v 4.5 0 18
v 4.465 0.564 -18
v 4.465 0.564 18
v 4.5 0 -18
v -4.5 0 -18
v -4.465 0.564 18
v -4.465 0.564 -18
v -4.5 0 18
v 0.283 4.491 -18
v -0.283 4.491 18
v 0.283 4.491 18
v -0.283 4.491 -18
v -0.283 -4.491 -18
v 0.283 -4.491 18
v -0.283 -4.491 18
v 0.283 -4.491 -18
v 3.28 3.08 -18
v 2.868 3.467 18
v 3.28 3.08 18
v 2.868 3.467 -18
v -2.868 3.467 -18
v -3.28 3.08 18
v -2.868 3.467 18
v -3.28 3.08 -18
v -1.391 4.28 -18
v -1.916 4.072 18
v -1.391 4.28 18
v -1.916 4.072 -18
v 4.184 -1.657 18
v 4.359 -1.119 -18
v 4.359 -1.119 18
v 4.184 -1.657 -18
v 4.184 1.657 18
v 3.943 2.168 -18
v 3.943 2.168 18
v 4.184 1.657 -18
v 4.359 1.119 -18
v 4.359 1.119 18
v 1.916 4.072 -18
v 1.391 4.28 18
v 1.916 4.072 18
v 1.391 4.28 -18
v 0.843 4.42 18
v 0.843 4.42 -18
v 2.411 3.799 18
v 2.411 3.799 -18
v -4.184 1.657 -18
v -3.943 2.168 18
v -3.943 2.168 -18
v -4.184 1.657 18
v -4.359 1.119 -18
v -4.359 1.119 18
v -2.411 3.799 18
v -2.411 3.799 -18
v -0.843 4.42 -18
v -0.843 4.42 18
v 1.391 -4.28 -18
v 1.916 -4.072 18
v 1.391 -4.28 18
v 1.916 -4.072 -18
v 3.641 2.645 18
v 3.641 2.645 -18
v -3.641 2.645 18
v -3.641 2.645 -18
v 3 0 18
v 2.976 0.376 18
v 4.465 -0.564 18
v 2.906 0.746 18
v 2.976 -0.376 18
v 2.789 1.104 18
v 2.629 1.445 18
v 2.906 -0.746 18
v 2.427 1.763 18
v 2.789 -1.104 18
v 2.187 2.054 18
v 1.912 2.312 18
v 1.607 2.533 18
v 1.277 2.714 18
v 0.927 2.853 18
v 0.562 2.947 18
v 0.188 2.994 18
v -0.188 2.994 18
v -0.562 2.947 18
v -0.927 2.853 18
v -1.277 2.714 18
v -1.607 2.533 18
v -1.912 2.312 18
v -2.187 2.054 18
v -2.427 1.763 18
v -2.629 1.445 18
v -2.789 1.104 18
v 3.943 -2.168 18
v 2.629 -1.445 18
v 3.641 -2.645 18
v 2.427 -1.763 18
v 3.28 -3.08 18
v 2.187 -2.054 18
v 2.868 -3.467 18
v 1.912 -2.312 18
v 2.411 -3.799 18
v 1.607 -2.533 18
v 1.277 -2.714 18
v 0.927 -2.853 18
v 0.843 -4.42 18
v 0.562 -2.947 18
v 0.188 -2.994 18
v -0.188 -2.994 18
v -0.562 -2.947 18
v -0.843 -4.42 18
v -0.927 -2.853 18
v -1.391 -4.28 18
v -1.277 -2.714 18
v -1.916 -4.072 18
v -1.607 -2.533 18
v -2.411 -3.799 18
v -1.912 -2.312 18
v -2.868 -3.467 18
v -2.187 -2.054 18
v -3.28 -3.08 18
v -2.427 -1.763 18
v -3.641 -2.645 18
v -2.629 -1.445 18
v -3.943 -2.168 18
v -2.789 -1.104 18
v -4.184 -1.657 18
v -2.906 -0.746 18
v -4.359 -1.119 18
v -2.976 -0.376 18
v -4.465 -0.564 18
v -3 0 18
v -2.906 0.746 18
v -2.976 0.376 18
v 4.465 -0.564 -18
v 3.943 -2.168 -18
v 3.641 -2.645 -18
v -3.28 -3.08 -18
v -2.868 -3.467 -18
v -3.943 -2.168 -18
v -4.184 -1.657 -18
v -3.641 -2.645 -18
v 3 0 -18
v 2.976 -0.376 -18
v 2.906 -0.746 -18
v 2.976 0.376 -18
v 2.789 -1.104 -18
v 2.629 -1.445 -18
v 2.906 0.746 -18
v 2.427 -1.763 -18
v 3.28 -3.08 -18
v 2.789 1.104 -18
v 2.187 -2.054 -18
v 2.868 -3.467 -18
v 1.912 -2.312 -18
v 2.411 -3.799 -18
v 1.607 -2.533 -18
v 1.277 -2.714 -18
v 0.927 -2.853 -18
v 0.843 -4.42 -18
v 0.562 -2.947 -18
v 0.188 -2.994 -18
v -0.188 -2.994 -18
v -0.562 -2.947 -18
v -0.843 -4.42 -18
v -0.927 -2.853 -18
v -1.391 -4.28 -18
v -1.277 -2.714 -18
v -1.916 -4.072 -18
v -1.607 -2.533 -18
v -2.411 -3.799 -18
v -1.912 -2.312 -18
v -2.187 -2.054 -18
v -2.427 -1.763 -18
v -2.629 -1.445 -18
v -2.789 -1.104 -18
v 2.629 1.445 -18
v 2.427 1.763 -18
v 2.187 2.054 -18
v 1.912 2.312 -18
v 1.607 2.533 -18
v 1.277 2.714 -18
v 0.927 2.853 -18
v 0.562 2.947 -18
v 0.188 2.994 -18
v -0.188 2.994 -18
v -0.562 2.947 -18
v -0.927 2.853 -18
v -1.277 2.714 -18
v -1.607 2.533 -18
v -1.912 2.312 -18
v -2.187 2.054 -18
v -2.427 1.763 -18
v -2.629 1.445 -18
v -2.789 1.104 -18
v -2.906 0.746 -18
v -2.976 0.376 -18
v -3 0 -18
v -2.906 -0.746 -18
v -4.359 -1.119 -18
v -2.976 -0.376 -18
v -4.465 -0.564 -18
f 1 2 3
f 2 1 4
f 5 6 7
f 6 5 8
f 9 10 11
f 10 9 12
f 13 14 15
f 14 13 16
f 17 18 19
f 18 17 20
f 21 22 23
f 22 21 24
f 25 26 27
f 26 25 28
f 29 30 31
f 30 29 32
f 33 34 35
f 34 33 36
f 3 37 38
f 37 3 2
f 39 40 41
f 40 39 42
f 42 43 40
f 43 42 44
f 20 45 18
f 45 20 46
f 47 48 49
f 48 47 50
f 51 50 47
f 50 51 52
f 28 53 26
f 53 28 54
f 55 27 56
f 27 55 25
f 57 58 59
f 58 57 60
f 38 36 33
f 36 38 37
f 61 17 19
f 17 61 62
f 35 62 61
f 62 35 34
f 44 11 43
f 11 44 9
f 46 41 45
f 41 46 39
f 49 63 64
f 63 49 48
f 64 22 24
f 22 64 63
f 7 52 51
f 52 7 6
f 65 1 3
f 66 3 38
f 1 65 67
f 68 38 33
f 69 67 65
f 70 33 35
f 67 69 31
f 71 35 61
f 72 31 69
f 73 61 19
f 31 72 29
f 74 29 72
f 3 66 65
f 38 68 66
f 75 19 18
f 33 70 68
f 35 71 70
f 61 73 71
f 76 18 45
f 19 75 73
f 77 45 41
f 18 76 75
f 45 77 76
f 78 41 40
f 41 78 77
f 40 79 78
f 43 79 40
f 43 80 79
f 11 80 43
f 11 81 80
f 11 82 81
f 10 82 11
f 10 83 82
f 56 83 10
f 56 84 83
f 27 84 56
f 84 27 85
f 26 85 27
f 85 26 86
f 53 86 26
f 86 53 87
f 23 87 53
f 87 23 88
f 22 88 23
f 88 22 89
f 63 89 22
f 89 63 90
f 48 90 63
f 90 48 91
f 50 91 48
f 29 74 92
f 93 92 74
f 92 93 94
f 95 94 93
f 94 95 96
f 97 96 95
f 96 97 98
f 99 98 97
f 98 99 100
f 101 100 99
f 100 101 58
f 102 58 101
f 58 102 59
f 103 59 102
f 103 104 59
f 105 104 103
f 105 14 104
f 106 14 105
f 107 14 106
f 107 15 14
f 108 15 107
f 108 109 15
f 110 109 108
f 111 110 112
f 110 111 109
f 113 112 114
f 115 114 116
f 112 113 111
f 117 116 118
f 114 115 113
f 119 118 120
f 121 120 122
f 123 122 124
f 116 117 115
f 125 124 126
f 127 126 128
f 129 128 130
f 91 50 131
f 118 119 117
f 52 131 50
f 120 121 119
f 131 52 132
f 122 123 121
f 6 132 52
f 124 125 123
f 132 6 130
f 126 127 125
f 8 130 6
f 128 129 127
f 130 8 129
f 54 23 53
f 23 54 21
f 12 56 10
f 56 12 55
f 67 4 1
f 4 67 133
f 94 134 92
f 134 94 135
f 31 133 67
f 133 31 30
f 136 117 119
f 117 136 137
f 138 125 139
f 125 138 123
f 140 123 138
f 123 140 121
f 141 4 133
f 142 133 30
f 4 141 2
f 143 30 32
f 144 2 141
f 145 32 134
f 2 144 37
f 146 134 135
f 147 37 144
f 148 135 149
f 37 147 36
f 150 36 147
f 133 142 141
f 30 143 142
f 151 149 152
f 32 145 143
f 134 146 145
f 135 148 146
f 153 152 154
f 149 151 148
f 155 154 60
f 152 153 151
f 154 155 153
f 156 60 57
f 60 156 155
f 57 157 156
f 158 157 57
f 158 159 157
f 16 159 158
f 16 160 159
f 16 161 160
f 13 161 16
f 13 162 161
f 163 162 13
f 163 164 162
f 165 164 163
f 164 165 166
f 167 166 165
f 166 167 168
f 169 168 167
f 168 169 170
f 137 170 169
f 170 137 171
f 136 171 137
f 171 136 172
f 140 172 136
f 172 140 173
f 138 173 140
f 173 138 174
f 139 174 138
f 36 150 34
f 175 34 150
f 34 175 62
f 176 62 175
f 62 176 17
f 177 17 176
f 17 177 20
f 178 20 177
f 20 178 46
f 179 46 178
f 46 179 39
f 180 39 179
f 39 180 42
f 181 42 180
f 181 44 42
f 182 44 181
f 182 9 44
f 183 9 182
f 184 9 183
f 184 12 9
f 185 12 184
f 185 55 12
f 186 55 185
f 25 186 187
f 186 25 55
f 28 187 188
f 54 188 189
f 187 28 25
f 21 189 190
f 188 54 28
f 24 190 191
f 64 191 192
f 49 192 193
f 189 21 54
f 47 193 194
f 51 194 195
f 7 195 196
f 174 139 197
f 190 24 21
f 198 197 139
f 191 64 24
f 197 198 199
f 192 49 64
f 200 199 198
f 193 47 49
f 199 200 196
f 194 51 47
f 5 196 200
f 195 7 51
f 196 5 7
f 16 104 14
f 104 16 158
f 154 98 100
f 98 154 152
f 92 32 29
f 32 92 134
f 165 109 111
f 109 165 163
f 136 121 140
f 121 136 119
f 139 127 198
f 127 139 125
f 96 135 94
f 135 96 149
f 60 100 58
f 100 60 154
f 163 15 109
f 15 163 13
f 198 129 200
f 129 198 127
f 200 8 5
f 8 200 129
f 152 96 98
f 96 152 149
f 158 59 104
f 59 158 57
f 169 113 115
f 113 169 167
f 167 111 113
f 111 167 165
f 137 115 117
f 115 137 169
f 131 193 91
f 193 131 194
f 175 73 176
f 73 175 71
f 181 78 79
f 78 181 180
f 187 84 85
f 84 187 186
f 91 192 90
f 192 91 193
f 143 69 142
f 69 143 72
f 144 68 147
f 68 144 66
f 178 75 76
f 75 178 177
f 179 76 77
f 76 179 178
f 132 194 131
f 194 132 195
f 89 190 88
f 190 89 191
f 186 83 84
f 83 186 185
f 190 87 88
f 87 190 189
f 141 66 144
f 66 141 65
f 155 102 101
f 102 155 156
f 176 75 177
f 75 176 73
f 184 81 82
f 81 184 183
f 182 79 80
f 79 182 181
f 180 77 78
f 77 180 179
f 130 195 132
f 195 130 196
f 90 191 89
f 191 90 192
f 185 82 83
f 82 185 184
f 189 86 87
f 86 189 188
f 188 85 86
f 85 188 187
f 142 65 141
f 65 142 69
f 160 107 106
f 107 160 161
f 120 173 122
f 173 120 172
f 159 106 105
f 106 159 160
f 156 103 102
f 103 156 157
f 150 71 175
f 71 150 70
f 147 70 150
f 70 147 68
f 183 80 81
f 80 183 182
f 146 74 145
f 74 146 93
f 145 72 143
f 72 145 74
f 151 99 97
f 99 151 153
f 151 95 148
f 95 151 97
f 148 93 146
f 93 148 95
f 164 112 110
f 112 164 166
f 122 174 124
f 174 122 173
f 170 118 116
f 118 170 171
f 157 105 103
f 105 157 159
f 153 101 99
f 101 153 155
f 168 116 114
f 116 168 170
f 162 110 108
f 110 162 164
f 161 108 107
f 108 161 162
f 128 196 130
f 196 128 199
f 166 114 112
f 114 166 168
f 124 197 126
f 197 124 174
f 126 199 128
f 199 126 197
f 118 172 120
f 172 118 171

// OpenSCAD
$fn = 50;


difference() {
	union() {
		translate(v = [0, 0, -18.0000000000]) {
			cylinder(h = 36, r = 4.5000000000);
		}
	}
	union() {
		translate(v = [0, 0, -100.0000000000]) {
			cylinder(h = 200, r = 3.0000000000);
		}
	}
}
